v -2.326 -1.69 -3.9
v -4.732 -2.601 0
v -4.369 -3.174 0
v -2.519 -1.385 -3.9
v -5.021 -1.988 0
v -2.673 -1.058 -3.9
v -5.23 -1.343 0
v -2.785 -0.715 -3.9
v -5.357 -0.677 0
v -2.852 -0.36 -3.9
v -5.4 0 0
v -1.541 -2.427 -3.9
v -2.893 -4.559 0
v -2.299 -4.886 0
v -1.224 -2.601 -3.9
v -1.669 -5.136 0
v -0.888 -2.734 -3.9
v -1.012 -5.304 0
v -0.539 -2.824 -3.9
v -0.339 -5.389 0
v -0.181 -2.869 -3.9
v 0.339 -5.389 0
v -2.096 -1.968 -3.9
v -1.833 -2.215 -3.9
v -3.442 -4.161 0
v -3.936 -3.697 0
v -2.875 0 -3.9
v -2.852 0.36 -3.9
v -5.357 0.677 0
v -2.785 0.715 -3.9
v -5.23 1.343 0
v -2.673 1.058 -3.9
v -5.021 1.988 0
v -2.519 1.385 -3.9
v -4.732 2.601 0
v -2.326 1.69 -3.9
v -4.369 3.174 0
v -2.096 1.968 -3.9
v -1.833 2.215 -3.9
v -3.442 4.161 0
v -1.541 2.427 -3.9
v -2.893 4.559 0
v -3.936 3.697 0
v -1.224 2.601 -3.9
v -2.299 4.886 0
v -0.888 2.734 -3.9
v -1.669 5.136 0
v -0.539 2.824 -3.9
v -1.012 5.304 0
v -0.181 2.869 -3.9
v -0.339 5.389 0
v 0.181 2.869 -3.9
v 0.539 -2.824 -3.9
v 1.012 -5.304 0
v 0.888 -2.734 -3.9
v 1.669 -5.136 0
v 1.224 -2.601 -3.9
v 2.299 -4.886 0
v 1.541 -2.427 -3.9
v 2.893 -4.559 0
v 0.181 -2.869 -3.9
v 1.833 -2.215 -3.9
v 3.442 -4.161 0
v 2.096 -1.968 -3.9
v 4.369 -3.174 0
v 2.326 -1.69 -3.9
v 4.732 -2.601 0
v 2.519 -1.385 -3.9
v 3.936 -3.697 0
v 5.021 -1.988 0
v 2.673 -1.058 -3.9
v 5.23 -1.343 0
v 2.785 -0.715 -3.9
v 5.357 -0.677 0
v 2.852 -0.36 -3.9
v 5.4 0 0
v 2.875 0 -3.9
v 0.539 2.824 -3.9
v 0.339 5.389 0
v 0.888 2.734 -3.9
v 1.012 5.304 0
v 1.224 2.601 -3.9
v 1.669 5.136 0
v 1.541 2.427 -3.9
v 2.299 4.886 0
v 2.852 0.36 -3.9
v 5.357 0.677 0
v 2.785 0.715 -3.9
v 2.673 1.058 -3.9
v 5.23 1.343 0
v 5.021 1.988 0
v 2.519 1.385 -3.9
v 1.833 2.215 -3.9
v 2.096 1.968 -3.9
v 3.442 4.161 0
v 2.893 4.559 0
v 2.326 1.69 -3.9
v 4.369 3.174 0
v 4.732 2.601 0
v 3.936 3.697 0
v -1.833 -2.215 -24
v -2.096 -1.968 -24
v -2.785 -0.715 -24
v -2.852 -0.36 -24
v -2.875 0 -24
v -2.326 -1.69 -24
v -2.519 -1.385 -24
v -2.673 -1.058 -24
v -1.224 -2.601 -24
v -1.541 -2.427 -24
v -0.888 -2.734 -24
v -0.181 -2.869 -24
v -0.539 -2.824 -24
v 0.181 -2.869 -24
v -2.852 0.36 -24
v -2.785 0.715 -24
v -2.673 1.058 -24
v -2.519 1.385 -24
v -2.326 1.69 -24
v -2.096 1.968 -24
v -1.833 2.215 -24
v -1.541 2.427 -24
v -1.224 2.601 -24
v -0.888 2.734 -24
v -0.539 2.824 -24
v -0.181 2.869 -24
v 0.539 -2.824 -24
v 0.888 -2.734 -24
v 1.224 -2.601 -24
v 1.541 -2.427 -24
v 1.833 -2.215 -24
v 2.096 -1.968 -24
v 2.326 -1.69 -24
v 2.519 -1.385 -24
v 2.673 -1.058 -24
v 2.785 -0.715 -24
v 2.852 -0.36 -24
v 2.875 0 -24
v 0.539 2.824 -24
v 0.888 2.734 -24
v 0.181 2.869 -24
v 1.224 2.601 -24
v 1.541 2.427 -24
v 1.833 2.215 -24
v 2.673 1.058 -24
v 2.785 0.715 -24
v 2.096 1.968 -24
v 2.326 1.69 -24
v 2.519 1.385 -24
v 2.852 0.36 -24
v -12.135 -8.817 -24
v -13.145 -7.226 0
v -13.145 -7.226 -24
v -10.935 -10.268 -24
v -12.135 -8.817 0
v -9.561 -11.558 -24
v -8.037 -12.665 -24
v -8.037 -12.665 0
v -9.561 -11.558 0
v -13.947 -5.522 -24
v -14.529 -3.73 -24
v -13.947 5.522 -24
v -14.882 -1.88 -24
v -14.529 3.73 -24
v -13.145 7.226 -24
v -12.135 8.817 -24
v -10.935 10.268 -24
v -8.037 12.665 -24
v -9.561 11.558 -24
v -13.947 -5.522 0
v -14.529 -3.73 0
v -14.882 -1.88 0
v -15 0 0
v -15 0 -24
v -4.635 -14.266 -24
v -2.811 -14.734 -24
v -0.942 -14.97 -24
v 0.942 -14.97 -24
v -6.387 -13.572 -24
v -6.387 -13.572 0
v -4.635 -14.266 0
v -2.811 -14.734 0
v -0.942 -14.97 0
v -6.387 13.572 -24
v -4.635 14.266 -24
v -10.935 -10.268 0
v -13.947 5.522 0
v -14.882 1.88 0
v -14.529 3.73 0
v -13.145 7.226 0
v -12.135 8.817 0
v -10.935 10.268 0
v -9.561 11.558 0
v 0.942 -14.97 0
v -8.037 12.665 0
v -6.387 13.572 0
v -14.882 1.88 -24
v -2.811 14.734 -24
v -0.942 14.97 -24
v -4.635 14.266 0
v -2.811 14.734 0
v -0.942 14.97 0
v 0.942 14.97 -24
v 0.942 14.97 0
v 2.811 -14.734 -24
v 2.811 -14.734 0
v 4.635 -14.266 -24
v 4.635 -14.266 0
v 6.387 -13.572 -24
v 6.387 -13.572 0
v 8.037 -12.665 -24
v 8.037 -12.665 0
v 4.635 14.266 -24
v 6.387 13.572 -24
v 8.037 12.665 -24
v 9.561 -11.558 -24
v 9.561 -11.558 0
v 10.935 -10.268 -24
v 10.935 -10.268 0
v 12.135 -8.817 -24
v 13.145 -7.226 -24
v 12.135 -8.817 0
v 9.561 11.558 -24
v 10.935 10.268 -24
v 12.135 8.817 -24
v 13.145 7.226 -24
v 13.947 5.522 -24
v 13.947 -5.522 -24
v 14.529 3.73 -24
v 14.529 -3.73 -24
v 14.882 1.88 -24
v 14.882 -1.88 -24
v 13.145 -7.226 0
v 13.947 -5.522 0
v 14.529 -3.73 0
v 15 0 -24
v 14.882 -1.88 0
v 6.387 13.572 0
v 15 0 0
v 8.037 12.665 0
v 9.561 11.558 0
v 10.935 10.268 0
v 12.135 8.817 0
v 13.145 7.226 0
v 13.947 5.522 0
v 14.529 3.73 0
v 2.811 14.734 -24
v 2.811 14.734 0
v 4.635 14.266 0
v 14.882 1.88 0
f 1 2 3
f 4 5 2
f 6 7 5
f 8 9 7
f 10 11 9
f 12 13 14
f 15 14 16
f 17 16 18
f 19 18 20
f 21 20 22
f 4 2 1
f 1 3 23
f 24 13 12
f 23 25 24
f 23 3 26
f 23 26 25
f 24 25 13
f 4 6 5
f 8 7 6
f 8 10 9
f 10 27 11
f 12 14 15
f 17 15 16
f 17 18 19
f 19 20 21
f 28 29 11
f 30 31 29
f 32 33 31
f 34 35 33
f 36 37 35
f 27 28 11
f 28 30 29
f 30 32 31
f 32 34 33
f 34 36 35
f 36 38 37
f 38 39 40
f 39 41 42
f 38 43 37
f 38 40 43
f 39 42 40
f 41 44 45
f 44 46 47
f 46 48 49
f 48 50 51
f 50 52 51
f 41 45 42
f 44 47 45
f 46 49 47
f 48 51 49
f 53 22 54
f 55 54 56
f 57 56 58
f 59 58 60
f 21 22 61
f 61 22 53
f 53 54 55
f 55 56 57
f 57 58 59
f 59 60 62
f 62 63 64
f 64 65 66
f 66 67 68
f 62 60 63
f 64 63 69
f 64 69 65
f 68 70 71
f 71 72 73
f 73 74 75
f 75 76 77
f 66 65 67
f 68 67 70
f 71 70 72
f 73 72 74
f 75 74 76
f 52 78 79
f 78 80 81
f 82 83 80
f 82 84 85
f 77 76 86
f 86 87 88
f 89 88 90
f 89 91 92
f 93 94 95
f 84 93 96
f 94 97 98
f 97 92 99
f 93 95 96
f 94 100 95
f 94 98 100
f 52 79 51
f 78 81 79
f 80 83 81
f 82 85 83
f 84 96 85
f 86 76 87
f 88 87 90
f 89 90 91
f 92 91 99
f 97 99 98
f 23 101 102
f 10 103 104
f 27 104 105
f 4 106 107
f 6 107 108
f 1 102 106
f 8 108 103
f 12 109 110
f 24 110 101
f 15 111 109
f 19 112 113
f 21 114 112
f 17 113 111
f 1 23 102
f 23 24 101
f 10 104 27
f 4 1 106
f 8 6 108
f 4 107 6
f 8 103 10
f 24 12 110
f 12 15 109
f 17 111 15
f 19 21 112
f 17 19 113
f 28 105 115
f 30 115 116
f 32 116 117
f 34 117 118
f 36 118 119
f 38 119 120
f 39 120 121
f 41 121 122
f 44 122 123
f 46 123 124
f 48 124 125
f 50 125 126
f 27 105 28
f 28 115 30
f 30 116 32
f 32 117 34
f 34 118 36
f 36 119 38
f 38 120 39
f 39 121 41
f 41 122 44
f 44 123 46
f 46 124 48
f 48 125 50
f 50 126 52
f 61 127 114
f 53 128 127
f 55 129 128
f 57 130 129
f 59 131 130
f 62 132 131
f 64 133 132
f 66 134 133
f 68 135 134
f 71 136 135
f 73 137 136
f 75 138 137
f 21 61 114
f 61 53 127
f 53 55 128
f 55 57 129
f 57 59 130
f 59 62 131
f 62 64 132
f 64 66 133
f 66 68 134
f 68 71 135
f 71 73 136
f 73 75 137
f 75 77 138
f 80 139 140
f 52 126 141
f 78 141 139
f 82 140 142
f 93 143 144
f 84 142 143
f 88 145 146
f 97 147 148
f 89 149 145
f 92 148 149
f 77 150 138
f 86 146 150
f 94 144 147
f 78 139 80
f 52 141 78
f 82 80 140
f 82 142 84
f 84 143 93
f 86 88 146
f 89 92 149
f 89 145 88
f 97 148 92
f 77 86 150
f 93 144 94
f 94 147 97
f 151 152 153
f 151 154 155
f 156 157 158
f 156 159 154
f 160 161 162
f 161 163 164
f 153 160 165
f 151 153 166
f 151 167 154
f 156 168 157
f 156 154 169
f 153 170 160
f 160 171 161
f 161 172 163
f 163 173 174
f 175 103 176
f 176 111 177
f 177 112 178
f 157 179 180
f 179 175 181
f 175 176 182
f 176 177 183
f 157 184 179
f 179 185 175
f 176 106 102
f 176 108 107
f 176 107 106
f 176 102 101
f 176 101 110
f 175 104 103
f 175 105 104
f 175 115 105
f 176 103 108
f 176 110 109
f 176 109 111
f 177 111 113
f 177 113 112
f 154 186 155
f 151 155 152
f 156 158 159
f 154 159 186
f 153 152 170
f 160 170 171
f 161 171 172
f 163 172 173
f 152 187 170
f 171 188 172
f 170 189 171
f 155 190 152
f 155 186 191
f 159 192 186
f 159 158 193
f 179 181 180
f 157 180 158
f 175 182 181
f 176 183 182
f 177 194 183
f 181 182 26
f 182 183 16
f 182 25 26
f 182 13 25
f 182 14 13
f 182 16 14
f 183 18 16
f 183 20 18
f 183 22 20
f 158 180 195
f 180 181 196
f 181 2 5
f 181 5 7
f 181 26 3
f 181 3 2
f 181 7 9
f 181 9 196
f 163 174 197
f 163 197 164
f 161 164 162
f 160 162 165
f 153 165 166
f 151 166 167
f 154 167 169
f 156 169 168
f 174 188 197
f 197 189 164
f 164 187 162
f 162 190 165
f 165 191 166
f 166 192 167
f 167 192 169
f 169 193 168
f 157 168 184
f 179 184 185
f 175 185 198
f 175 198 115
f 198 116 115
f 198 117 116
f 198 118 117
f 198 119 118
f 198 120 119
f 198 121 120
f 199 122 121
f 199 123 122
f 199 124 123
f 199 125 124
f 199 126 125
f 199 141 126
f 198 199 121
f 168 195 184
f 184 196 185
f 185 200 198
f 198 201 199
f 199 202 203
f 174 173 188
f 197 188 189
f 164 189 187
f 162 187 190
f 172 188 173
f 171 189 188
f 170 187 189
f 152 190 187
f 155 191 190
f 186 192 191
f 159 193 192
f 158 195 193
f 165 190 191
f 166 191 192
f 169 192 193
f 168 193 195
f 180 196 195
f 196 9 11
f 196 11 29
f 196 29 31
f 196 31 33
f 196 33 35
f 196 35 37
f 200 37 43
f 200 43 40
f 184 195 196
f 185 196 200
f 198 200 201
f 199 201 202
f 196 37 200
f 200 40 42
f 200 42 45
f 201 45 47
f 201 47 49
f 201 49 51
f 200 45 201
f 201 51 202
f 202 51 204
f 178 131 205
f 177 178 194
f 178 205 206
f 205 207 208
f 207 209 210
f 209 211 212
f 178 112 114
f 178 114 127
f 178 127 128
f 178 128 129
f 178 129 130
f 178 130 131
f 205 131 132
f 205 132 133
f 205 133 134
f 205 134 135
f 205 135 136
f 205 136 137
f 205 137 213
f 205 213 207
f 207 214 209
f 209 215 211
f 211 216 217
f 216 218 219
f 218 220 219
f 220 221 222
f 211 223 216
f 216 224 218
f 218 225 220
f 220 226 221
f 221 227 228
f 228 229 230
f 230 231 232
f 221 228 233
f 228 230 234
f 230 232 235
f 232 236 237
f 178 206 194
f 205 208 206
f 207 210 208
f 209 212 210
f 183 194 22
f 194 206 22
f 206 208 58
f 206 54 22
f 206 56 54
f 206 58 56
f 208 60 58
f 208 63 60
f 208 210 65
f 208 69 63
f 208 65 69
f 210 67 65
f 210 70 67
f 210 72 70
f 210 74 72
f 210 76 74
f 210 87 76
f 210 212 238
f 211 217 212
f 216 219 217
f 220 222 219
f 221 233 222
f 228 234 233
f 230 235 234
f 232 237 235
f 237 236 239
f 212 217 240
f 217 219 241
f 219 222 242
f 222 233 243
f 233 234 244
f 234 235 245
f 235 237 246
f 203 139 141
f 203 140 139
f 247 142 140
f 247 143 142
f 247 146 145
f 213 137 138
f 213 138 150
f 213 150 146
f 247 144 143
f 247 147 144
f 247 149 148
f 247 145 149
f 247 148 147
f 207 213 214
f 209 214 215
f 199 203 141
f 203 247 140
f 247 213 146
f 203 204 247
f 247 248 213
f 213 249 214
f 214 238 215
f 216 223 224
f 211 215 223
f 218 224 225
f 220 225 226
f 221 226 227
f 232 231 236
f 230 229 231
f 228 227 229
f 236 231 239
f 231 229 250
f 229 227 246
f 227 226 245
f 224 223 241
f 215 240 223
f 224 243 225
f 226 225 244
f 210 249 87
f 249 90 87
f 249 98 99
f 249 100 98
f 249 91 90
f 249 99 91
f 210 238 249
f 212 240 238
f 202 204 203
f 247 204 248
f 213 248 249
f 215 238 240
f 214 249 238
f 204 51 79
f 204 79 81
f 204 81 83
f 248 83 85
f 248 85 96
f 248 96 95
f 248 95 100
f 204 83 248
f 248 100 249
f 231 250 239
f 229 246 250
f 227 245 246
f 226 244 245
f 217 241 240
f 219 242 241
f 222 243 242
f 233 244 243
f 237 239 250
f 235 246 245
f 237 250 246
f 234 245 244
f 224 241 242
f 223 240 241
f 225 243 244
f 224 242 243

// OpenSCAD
$fn = 50;

difference() {
	union() {
		translate(v = [0, 0, -24.0]) {
			cylinder(h = 24, r = 15.0);
		}
	}
	union() {
		translate(v = [0, 0, 0]) {
			rotate(a = [0, 0, 0]) {
				difference() {
					union() {
						translate(v = [0, 0, -27.0]) {
							cylinder(h = 27, r = 2.6);
						}
						translate(v = [0, 0, -3.9]) {
							cylinder(h = 3.9, r1 = 2.875, r2 = 5.4);
						}
						translate(v = [0, 0, -27.0]) {
							cylinder(h = 27, r = 2.875);
						}
						translate(v = [0, 0, -27.0]) {
							cylinder(h = 27, r = 2.6);
						}
					}
					union();
				}
			}
		}
	}
}
